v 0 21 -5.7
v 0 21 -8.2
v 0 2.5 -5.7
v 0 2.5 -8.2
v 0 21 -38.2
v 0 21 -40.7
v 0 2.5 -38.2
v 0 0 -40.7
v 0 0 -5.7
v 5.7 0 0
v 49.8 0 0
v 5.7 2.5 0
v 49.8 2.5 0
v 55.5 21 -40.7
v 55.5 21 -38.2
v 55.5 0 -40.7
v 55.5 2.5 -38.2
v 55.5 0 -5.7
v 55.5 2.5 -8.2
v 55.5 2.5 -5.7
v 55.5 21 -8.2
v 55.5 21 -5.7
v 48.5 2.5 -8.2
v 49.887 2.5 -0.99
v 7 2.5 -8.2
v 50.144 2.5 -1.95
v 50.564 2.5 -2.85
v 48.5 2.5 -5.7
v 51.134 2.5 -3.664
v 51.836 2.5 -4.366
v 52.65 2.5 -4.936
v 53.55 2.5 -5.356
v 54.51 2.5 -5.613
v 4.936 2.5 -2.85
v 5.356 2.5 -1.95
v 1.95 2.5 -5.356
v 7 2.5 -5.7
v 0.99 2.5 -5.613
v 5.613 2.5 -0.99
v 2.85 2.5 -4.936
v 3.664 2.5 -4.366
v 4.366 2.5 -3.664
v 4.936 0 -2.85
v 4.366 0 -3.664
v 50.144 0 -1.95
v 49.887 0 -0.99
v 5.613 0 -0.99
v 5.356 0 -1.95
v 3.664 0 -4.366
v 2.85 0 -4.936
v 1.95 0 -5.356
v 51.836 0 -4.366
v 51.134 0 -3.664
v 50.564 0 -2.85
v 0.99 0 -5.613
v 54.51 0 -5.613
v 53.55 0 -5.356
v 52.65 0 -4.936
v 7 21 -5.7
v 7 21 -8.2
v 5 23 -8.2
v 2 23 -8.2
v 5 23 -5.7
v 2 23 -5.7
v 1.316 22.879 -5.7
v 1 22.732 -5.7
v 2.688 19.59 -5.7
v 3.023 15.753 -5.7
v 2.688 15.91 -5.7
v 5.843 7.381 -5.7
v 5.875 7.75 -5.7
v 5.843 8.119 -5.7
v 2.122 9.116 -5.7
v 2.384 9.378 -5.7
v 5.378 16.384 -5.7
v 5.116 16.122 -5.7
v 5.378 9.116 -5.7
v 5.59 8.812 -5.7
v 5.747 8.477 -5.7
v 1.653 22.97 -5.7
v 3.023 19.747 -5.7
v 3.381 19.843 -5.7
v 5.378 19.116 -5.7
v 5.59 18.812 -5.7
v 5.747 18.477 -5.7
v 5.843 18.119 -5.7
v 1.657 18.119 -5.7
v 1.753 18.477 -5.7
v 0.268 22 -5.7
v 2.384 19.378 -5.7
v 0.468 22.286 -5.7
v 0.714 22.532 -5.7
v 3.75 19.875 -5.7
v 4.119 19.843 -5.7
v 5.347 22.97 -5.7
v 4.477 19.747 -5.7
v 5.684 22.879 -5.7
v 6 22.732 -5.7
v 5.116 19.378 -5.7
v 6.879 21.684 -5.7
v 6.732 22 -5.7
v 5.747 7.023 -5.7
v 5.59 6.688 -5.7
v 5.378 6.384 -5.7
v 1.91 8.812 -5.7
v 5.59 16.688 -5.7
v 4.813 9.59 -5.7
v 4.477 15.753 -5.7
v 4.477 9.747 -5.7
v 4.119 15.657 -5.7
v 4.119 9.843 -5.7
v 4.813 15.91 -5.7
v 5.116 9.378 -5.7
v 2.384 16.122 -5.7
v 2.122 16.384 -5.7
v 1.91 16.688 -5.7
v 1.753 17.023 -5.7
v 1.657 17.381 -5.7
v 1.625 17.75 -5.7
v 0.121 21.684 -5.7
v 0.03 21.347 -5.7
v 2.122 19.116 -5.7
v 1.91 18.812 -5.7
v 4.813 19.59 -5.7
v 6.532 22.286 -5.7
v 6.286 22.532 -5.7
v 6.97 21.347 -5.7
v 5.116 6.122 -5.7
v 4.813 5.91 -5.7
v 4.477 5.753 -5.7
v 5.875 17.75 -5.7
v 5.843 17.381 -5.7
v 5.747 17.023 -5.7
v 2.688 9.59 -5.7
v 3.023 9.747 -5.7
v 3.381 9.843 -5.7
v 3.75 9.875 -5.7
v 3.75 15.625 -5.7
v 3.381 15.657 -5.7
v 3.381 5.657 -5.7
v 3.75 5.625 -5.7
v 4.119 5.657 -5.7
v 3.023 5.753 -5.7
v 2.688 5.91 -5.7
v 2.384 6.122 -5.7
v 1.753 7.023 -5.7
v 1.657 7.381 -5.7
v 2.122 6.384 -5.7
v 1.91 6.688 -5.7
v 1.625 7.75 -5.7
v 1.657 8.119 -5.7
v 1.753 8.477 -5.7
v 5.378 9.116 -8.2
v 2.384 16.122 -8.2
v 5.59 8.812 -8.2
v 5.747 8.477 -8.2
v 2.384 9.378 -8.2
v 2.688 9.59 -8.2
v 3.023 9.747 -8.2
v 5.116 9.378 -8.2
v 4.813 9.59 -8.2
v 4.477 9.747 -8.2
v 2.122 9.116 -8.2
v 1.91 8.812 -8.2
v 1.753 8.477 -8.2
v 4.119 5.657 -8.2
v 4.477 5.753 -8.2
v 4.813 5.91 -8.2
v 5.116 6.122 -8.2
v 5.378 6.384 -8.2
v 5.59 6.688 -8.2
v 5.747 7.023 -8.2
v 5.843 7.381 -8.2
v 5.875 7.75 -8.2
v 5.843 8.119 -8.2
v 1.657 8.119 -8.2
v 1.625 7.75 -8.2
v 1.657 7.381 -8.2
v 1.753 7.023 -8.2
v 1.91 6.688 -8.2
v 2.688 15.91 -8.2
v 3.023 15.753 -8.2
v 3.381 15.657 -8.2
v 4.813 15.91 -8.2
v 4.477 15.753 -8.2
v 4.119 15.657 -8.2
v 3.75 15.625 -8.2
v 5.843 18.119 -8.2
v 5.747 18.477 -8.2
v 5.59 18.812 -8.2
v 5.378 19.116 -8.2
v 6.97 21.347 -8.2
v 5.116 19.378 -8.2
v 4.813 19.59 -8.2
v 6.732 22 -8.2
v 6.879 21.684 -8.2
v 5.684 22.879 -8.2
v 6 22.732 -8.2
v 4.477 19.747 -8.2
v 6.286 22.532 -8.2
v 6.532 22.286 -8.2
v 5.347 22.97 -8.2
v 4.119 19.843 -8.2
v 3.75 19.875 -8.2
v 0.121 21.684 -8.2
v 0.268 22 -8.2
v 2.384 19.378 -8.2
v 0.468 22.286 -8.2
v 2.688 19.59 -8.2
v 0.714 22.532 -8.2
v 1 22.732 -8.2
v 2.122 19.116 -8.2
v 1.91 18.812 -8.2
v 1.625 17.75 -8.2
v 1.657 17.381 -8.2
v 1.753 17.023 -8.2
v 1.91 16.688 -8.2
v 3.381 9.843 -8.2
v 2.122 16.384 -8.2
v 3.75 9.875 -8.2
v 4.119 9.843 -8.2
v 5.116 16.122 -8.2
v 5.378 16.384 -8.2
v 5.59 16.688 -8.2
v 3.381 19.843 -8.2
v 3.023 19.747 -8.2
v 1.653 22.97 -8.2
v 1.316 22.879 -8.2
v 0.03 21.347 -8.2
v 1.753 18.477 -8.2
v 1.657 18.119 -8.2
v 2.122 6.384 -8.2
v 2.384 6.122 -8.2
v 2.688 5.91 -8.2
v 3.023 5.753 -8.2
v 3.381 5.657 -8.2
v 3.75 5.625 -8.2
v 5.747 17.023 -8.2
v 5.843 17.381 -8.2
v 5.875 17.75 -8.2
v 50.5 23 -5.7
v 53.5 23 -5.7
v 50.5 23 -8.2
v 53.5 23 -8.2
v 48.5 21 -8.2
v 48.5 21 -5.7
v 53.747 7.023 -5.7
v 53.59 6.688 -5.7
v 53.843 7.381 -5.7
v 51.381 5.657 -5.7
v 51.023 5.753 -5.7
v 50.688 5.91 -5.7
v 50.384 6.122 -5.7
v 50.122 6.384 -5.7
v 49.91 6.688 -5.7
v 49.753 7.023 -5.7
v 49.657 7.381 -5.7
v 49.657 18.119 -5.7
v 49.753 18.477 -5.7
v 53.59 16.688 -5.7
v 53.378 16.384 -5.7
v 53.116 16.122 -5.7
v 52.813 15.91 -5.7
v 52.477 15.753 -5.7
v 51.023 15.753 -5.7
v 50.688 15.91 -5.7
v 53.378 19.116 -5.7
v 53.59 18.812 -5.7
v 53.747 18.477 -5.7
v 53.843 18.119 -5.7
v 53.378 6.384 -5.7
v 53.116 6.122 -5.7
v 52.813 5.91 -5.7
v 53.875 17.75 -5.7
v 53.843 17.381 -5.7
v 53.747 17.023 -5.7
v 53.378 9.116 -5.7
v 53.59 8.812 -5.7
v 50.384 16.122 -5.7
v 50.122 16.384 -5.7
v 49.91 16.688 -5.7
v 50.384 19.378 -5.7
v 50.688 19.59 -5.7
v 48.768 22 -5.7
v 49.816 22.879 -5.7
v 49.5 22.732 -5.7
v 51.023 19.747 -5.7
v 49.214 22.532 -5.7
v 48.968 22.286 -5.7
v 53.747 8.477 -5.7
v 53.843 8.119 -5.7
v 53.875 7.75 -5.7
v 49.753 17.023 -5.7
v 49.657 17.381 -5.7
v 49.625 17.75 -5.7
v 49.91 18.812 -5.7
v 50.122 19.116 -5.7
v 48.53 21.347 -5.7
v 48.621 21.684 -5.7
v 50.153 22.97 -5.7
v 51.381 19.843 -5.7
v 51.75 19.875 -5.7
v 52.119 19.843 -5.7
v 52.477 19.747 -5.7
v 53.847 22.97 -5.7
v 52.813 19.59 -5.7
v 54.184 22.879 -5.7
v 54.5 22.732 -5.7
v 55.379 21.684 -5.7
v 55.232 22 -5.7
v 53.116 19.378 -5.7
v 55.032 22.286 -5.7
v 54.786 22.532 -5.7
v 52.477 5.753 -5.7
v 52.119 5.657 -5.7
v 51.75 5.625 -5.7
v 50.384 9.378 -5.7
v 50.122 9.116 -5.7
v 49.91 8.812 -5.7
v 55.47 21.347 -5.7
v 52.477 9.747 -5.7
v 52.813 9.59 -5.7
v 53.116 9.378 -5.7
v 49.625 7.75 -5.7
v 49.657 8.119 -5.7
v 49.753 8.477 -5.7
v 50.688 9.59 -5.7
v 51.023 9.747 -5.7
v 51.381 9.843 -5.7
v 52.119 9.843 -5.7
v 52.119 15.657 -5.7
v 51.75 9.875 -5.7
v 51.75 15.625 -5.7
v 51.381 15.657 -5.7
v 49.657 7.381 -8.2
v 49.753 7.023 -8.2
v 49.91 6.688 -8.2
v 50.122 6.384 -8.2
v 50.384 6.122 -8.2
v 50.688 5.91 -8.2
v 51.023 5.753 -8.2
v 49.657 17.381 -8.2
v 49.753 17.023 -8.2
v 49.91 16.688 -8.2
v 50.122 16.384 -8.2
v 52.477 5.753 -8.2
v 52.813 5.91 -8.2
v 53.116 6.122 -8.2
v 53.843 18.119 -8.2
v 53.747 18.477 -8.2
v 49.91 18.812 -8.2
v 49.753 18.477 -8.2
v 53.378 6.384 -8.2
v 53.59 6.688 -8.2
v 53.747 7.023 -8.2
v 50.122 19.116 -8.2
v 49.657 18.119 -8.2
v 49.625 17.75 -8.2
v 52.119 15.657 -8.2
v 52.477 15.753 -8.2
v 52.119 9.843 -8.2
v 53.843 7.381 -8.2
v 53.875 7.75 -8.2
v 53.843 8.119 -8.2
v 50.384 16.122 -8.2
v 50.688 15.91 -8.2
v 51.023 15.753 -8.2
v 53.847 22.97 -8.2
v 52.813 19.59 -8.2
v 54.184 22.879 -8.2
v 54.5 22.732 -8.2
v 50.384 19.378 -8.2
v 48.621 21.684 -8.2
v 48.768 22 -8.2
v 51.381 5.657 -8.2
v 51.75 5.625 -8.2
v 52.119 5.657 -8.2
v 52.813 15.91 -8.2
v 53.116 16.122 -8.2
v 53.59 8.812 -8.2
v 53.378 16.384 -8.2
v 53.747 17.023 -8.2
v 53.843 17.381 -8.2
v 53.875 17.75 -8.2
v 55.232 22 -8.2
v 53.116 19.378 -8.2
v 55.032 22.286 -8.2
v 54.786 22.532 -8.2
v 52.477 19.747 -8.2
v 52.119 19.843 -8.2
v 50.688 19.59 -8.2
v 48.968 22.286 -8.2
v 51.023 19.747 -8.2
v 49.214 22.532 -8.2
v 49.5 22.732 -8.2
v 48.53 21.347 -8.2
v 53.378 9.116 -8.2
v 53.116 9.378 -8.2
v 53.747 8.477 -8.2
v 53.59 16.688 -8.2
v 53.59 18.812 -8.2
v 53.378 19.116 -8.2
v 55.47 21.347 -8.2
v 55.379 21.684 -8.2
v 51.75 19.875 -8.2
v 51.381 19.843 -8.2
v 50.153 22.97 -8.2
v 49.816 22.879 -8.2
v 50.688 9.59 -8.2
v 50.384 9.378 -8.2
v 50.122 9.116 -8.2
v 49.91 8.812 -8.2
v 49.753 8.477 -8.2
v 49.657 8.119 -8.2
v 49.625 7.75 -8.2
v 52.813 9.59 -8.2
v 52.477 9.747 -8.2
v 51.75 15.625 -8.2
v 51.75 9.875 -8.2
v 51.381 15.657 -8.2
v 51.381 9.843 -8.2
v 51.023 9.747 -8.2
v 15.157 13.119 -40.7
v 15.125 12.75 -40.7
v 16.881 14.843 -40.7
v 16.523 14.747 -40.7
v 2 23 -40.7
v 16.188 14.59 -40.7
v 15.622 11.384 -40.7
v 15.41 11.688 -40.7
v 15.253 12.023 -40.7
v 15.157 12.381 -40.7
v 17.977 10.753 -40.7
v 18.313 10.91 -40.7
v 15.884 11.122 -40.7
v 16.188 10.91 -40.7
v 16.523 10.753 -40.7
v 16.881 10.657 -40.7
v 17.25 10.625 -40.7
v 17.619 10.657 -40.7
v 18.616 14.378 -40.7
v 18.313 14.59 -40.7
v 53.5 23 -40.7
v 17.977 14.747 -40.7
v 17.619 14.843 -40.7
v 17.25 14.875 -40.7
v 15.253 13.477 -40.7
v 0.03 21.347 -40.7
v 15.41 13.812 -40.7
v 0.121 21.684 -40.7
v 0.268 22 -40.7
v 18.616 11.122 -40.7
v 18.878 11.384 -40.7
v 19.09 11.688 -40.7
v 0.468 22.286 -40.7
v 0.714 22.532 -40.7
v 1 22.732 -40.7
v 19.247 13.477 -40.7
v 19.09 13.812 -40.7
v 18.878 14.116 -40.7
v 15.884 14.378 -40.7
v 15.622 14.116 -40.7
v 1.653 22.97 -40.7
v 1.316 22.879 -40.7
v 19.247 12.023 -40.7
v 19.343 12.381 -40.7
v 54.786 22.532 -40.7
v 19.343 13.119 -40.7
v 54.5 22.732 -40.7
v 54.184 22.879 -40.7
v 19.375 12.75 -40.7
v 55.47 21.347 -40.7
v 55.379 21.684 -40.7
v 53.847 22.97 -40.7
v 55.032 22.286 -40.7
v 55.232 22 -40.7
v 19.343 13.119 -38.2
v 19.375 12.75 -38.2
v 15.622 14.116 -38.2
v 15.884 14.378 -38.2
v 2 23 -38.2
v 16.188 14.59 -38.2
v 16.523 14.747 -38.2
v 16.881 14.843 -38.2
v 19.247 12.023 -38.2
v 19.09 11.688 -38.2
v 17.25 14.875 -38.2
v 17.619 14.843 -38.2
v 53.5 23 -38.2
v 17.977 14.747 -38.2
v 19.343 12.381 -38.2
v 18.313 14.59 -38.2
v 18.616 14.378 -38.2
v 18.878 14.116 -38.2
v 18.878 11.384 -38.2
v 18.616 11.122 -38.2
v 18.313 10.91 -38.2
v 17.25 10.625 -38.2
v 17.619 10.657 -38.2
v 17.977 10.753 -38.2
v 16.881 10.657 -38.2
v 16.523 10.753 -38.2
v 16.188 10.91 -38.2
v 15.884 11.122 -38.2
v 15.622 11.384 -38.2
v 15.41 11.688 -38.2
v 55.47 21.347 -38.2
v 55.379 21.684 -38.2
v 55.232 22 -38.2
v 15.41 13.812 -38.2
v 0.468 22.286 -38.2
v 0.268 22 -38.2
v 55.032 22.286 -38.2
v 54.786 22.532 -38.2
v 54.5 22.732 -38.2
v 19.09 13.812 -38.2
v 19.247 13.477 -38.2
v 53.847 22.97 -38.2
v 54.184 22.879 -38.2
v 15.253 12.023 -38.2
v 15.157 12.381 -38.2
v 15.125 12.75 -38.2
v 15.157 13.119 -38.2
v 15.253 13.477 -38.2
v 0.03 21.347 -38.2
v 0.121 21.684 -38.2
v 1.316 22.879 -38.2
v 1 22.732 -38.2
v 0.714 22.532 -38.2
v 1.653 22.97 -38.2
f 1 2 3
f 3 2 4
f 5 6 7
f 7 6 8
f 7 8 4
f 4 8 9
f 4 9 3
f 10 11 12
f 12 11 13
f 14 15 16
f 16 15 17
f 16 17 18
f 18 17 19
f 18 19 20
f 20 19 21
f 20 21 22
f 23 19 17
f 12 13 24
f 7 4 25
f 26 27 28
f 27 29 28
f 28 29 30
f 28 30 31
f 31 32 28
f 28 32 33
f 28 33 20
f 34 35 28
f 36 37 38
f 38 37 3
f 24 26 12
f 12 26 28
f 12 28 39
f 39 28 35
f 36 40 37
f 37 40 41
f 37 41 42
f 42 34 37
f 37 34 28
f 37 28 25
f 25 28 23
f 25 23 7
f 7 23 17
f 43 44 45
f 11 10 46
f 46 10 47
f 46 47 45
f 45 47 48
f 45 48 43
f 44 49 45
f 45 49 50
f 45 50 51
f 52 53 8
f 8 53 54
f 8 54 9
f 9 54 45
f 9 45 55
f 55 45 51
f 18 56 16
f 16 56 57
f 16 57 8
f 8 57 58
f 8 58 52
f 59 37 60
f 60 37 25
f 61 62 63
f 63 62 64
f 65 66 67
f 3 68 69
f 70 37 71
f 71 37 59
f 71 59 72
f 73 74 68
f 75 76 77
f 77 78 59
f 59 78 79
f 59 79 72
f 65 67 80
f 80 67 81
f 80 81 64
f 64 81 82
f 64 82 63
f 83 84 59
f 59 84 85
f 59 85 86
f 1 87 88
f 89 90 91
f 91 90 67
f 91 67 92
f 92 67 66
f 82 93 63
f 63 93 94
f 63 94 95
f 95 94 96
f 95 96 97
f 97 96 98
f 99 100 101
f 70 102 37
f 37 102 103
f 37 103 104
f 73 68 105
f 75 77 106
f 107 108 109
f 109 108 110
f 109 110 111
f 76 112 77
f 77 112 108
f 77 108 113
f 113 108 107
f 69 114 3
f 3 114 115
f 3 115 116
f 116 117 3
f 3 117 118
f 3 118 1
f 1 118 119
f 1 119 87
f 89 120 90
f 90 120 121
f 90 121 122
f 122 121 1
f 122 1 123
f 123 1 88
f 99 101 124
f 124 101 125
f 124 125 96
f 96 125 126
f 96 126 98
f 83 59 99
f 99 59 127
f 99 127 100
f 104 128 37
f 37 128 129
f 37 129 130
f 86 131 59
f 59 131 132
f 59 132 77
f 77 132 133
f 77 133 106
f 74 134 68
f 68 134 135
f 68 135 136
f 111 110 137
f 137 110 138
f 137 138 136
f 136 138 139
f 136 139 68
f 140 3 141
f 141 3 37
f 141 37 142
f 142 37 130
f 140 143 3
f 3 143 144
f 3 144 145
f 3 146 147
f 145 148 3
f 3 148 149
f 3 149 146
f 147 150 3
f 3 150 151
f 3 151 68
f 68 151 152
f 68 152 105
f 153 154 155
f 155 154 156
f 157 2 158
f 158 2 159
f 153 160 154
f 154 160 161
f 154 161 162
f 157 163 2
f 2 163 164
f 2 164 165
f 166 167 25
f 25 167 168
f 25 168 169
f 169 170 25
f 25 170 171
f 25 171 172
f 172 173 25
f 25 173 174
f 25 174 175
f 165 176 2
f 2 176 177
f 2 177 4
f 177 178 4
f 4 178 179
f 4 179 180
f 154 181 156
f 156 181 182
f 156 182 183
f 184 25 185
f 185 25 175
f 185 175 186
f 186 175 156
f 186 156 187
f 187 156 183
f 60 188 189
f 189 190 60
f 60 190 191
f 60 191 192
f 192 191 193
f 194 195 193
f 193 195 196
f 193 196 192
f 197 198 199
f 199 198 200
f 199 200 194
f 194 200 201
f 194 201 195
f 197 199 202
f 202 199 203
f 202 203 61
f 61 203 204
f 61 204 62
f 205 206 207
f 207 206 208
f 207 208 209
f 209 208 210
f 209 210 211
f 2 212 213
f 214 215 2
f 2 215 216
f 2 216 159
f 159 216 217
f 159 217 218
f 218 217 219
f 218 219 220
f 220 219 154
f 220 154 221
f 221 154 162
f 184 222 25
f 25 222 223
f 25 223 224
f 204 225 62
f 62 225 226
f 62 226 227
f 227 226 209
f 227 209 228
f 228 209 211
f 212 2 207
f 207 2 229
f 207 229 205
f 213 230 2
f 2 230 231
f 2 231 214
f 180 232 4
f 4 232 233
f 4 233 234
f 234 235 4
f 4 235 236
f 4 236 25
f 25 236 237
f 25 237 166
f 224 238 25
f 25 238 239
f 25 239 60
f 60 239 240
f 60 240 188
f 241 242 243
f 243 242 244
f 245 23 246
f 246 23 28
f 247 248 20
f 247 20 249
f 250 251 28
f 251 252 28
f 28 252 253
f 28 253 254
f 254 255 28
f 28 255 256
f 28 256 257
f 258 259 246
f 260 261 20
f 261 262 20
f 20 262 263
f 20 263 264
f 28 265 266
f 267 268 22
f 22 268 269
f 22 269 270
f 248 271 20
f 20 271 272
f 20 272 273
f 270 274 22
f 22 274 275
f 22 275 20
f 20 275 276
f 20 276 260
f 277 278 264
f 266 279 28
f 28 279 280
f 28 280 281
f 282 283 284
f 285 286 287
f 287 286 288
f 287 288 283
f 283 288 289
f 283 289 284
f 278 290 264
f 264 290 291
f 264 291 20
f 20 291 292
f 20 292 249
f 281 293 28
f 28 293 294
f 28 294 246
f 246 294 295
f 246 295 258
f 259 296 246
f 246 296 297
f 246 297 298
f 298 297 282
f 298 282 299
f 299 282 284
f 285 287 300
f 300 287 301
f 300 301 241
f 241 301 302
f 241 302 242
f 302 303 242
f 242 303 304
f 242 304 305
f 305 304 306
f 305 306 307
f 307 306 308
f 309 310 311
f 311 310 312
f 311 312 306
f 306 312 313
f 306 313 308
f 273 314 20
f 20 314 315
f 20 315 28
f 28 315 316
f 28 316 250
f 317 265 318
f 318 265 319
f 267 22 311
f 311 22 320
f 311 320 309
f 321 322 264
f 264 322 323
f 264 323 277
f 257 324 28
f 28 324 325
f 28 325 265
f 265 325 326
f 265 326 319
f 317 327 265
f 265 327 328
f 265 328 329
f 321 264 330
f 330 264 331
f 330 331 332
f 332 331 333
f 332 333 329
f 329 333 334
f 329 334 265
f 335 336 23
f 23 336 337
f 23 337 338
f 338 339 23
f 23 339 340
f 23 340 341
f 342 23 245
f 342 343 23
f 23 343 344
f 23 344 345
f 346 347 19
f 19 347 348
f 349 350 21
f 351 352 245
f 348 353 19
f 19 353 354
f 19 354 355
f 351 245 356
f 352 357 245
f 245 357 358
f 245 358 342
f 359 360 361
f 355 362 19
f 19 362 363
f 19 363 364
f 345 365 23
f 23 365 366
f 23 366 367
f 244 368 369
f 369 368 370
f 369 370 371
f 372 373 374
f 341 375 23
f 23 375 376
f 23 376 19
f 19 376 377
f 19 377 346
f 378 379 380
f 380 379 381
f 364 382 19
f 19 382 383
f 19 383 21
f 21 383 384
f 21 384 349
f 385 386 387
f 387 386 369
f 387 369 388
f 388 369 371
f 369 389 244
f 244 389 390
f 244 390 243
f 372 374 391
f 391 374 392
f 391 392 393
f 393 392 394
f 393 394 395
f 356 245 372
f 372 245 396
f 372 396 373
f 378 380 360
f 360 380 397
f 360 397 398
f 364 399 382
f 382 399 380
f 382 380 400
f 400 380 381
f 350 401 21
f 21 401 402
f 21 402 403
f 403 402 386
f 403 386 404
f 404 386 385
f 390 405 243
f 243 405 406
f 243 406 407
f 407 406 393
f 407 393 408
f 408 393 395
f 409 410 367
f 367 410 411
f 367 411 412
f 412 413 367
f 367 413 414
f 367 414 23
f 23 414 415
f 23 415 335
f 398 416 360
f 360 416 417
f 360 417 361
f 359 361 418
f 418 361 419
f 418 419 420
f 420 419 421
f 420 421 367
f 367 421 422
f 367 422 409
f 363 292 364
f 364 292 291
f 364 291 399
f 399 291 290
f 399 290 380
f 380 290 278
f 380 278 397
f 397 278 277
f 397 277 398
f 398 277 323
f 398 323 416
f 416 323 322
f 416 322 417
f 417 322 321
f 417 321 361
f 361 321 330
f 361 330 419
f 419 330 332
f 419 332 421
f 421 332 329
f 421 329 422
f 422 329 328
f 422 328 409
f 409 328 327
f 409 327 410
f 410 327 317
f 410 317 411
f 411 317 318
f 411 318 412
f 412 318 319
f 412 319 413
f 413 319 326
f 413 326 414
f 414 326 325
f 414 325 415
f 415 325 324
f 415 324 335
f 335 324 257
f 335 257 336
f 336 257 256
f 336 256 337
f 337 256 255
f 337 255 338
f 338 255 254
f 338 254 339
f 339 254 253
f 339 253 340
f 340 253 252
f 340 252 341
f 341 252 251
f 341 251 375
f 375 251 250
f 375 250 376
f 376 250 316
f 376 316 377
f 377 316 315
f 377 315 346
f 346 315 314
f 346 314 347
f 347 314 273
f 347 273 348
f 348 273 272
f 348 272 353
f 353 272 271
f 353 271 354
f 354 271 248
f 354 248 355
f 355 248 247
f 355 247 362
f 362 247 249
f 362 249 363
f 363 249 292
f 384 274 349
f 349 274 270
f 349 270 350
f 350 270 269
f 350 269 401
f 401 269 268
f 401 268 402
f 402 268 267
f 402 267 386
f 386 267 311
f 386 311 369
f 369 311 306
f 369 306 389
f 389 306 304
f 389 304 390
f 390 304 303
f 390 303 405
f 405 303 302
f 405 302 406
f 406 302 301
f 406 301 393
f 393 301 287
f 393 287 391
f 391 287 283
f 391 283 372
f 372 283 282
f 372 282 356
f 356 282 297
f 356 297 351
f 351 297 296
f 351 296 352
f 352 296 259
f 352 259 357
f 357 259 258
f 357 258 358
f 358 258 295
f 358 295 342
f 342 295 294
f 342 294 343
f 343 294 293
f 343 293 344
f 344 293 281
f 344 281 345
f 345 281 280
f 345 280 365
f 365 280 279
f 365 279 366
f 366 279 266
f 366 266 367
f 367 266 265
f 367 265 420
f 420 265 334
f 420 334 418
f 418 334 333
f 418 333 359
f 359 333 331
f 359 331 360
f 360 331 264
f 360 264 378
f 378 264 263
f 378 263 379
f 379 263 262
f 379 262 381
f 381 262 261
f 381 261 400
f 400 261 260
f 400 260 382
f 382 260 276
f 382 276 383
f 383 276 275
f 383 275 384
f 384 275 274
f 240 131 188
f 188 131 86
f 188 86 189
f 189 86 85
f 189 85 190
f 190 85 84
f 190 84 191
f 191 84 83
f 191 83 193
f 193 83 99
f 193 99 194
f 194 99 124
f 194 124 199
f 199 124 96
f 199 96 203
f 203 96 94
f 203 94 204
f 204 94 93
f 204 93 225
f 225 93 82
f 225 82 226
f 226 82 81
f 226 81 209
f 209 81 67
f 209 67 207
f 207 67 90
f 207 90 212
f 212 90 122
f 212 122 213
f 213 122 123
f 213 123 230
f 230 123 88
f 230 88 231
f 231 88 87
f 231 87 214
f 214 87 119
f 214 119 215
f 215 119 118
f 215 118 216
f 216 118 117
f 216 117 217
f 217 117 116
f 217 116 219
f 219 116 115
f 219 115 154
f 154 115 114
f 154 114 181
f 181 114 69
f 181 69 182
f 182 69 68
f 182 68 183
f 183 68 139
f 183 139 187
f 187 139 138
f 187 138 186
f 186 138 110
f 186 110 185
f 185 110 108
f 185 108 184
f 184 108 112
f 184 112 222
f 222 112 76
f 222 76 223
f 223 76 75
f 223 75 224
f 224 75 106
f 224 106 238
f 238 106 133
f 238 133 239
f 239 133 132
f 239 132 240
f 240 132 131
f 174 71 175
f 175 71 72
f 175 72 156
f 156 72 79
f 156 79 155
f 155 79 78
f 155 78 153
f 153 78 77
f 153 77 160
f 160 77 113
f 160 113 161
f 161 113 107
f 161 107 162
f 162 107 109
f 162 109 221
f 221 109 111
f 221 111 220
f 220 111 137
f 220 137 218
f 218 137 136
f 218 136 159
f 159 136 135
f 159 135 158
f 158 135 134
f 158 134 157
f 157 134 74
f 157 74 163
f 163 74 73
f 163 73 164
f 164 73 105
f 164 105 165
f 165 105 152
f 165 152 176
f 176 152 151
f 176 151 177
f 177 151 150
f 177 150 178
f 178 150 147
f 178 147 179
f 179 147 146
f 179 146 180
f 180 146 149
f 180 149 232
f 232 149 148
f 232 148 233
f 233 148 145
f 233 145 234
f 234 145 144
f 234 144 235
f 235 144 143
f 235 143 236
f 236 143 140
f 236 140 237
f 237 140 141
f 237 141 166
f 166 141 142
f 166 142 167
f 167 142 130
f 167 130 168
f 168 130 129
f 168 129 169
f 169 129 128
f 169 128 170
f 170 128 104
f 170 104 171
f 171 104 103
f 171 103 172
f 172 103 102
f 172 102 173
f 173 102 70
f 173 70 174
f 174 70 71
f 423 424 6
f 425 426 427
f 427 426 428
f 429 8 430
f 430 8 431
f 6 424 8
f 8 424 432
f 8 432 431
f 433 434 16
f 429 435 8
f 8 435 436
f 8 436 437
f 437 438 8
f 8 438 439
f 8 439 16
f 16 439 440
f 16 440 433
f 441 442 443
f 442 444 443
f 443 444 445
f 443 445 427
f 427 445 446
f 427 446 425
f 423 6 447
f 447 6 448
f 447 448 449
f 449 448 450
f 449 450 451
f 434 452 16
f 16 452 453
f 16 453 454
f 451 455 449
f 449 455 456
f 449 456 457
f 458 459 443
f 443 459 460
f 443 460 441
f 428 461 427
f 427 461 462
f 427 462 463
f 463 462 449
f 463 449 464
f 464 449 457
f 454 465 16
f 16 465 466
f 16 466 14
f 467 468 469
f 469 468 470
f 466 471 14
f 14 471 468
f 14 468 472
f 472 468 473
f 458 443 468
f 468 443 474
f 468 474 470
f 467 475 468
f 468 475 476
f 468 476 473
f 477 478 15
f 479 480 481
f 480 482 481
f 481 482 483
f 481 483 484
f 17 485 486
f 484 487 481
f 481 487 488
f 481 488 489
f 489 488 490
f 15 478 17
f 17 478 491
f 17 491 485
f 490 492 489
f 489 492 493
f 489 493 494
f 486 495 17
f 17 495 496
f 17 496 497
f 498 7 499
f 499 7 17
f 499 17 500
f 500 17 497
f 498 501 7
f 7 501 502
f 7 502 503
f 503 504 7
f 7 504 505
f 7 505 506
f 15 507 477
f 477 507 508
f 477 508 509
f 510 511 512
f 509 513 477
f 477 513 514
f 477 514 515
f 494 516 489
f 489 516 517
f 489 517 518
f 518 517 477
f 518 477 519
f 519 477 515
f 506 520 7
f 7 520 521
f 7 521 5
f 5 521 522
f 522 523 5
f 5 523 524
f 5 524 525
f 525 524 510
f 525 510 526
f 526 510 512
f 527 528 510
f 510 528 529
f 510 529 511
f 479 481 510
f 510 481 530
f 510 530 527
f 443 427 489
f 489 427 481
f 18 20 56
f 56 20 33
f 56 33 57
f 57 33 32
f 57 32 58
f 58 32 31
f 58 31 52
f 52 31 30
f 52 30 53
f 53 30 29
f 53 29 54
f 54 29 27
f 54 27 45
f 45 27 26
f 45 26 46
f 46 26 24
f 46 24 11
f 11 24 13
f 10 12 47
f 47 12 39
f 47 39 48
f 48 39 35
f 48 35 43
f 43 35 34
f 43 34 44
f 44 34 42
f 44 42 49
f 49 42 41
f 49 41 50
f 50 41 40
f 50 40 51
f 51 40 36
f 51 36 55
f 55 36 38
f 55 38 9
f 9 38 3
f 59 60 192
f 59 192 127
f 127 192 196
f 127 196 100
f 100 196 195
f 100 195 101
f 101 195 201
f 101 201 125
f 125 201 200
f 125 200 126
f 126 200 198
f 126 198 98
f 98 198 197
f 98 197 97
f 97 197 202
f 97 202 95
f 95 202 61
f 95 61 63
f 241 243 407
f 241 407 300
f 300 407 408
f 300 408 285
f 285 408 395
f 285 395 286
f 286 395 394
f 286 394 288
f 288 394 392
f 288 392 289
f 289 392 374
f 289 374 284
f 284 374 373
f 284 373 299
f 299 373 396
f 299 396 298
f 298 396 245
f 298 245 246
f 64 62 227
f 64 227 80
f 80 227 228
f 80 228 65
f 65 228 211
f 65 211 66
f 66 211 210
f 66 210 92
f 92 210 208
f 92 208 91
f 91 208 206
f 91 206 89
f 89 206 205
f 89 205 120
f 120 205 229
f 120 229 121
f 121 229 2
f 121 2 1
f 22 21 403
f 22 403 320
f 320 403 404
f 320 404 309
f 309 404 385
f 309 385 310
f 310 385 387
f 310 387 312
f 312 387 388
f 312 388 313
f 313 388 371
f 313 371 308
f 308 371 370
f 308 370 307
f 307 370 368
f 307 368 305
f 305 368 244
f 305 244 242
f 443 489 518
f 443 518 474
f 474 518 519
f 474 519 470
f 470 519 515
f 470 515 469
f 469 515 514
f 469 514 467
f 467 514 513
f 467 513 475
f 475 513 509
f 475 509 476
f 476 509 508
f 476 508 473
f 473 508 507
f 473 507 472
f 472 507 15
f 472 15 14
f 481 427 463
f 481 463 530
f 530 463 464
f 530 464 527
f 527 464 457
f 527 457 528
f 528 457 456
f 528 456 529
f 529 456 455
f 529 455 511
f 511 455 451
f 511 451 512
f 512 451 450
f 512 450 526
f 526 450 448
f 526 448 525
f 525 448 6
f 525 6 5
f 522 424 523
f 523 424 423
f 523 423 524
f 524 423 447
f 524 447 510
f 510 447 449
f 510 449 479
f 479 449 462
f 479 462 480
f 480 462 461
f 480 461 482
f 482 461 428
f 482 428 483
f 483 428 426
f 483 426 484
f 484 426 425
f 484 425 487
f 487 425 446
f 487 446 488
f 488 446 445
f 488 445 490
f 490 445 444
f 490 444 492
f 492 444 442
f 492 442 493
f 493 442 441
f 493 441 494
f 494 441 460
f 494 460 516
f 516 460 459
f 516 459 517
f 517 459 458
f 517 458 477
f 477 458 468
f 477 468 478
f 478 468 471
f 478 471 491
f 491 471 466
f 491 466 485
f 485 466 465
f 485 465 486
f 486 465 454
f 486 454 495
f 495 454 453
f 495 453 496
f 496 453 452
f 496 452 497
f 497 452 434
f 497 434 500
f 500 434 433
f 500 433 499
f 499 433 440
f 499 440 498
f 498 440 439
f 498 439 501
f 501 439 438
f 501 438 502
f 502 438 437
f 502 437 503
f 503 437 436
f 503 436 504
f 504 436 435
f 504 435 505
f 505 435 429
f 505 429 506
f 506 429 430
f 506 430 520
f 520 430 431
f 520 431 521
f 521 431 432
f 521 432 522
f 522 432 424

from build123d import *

# Parameters (mm, degrees)
SKETCH1_W                   = 55.5
SKETCH1_H                   = 38.2
BRACKETBASE_DEPTH           = 2.5
SKETCH2_W                   = 7
SKETCH2_H                   = 20.5
SERVOMOUNTINGHOLETABS_DEPTH = 2.5
SKETCH3_R                   = 2
SERVOMOUNTINGHOLES_DEPTH    = 2.5
SKETCH4_W                   = 55.5
SKETCH4_H                   = 2.5
BASEWALL_DEPTH              = 23
SKETCH6_R                   = 5.7
BASETRIM_DEPTH              = 2.5
FILLET1_R                   = 2
SKETCH7_R                   = 2
M4MOUNTINGHOLE_DEPTH        = 10


with BuildPart() as part:
    # Sketch1 → bracketBase (new body)
    with BuildSketch(Plane(origin=(0, 0, 0), x_dir=(1, 0, 0), z_dir=(0, 1, 0))):
        with Locations((27.75, 19.1)):
            Rectangle(SKETCH1_W, SKETCH1_H)
    extrude(amount=BRACKETBASE_DEPTH)

    # Sketch2 → servoMountingHoleTabs (add)
    with BuildSketch(Plane.XY.offset(-8.2)):
        with Locations((3.5, 12.75)):
            Rectangle(SKETCH2_W, SKETCH2_H)
        with Locations((52, 12.75)):
            Rectangle(SKETCH2_W, SKETCH2_H)
    extrude(amount=SERVOMOUNTINGHOLETABS_DEPTH)

    # Sketch3 → servoMountingHoles (cut)
    with BuildSketch(Plane.XY.offset(-5.7)):
        with Locations((3.75, 17.75)):
            Circle(SKETCH3_R)
        with Locations(Location((3.75, 7.75, 0), (0, 0, 180))):
            Circle(SKETCH3_R)
        with Locations((51.75, 7.75)):
            Circle(SKETCH3_R)
        with Locations(Location((51.75, 17.75, 0), (0, 0, 180))):
            Circle(SKETCH3_R)
    extrude(amount=-SERVOMOUNTINGHOLES_DEPTH, mode=Mode.SUBTRACT)

    # Sketch4 → baseWall (add)
    with BuildSketch(Plane(origin=(0, 0, 0), x_dir=(1, 0, 0), z_dir=(0, 1, 0))):
        with Locations((27.75, 39.45)):
            Rectangle(SKETCH4_W, SKETCH4_H)
    extrude(amount=BASEWALL_DEPTH)

    # Sketch6 → baseTrim (cut)
    with BuildSketch(Plane(origin=(0, 2.5, 0), x_dir=(1, 0, 0), z_dir=(0, 1, 0))):
        Circle(SKETCH6_R)
        with Locations((55.5, 0)):
            Circle(SKETCH6_R)
    extrude(amount=-BASETRIM_DEPTH, mode=Mode.SUBTRACT)

    # Fillet1
    fillet1_edges = [part.edges().sort_by_distance(p)[0] for p in [
        (0, 23, -6.95),
        (7, 23, -6.95),
        (55.5, 23, -6.95),
        (48.5, 23, -6.95),
        (55.5, 23, -39.45),
        (0, 23, -39.45),
    ]]
    fillet(fillet1_edges, radius=FILLET1_R)

    # Sketch7 → M4mountingHole (cut)
    with BuildSketch(Plane(origin=(0, 0, -40.7), x_dir=(-1, 0, 0), z_dir=(0, 0, -1))):
        with Locations((-17.25, 12.75)):
            Circle(SKETCH7_R)
    extrude(amount=-M4MOUNTINGHOLE_DEPTH, mode=Mode.SUBTRACT)


solid = part.part
